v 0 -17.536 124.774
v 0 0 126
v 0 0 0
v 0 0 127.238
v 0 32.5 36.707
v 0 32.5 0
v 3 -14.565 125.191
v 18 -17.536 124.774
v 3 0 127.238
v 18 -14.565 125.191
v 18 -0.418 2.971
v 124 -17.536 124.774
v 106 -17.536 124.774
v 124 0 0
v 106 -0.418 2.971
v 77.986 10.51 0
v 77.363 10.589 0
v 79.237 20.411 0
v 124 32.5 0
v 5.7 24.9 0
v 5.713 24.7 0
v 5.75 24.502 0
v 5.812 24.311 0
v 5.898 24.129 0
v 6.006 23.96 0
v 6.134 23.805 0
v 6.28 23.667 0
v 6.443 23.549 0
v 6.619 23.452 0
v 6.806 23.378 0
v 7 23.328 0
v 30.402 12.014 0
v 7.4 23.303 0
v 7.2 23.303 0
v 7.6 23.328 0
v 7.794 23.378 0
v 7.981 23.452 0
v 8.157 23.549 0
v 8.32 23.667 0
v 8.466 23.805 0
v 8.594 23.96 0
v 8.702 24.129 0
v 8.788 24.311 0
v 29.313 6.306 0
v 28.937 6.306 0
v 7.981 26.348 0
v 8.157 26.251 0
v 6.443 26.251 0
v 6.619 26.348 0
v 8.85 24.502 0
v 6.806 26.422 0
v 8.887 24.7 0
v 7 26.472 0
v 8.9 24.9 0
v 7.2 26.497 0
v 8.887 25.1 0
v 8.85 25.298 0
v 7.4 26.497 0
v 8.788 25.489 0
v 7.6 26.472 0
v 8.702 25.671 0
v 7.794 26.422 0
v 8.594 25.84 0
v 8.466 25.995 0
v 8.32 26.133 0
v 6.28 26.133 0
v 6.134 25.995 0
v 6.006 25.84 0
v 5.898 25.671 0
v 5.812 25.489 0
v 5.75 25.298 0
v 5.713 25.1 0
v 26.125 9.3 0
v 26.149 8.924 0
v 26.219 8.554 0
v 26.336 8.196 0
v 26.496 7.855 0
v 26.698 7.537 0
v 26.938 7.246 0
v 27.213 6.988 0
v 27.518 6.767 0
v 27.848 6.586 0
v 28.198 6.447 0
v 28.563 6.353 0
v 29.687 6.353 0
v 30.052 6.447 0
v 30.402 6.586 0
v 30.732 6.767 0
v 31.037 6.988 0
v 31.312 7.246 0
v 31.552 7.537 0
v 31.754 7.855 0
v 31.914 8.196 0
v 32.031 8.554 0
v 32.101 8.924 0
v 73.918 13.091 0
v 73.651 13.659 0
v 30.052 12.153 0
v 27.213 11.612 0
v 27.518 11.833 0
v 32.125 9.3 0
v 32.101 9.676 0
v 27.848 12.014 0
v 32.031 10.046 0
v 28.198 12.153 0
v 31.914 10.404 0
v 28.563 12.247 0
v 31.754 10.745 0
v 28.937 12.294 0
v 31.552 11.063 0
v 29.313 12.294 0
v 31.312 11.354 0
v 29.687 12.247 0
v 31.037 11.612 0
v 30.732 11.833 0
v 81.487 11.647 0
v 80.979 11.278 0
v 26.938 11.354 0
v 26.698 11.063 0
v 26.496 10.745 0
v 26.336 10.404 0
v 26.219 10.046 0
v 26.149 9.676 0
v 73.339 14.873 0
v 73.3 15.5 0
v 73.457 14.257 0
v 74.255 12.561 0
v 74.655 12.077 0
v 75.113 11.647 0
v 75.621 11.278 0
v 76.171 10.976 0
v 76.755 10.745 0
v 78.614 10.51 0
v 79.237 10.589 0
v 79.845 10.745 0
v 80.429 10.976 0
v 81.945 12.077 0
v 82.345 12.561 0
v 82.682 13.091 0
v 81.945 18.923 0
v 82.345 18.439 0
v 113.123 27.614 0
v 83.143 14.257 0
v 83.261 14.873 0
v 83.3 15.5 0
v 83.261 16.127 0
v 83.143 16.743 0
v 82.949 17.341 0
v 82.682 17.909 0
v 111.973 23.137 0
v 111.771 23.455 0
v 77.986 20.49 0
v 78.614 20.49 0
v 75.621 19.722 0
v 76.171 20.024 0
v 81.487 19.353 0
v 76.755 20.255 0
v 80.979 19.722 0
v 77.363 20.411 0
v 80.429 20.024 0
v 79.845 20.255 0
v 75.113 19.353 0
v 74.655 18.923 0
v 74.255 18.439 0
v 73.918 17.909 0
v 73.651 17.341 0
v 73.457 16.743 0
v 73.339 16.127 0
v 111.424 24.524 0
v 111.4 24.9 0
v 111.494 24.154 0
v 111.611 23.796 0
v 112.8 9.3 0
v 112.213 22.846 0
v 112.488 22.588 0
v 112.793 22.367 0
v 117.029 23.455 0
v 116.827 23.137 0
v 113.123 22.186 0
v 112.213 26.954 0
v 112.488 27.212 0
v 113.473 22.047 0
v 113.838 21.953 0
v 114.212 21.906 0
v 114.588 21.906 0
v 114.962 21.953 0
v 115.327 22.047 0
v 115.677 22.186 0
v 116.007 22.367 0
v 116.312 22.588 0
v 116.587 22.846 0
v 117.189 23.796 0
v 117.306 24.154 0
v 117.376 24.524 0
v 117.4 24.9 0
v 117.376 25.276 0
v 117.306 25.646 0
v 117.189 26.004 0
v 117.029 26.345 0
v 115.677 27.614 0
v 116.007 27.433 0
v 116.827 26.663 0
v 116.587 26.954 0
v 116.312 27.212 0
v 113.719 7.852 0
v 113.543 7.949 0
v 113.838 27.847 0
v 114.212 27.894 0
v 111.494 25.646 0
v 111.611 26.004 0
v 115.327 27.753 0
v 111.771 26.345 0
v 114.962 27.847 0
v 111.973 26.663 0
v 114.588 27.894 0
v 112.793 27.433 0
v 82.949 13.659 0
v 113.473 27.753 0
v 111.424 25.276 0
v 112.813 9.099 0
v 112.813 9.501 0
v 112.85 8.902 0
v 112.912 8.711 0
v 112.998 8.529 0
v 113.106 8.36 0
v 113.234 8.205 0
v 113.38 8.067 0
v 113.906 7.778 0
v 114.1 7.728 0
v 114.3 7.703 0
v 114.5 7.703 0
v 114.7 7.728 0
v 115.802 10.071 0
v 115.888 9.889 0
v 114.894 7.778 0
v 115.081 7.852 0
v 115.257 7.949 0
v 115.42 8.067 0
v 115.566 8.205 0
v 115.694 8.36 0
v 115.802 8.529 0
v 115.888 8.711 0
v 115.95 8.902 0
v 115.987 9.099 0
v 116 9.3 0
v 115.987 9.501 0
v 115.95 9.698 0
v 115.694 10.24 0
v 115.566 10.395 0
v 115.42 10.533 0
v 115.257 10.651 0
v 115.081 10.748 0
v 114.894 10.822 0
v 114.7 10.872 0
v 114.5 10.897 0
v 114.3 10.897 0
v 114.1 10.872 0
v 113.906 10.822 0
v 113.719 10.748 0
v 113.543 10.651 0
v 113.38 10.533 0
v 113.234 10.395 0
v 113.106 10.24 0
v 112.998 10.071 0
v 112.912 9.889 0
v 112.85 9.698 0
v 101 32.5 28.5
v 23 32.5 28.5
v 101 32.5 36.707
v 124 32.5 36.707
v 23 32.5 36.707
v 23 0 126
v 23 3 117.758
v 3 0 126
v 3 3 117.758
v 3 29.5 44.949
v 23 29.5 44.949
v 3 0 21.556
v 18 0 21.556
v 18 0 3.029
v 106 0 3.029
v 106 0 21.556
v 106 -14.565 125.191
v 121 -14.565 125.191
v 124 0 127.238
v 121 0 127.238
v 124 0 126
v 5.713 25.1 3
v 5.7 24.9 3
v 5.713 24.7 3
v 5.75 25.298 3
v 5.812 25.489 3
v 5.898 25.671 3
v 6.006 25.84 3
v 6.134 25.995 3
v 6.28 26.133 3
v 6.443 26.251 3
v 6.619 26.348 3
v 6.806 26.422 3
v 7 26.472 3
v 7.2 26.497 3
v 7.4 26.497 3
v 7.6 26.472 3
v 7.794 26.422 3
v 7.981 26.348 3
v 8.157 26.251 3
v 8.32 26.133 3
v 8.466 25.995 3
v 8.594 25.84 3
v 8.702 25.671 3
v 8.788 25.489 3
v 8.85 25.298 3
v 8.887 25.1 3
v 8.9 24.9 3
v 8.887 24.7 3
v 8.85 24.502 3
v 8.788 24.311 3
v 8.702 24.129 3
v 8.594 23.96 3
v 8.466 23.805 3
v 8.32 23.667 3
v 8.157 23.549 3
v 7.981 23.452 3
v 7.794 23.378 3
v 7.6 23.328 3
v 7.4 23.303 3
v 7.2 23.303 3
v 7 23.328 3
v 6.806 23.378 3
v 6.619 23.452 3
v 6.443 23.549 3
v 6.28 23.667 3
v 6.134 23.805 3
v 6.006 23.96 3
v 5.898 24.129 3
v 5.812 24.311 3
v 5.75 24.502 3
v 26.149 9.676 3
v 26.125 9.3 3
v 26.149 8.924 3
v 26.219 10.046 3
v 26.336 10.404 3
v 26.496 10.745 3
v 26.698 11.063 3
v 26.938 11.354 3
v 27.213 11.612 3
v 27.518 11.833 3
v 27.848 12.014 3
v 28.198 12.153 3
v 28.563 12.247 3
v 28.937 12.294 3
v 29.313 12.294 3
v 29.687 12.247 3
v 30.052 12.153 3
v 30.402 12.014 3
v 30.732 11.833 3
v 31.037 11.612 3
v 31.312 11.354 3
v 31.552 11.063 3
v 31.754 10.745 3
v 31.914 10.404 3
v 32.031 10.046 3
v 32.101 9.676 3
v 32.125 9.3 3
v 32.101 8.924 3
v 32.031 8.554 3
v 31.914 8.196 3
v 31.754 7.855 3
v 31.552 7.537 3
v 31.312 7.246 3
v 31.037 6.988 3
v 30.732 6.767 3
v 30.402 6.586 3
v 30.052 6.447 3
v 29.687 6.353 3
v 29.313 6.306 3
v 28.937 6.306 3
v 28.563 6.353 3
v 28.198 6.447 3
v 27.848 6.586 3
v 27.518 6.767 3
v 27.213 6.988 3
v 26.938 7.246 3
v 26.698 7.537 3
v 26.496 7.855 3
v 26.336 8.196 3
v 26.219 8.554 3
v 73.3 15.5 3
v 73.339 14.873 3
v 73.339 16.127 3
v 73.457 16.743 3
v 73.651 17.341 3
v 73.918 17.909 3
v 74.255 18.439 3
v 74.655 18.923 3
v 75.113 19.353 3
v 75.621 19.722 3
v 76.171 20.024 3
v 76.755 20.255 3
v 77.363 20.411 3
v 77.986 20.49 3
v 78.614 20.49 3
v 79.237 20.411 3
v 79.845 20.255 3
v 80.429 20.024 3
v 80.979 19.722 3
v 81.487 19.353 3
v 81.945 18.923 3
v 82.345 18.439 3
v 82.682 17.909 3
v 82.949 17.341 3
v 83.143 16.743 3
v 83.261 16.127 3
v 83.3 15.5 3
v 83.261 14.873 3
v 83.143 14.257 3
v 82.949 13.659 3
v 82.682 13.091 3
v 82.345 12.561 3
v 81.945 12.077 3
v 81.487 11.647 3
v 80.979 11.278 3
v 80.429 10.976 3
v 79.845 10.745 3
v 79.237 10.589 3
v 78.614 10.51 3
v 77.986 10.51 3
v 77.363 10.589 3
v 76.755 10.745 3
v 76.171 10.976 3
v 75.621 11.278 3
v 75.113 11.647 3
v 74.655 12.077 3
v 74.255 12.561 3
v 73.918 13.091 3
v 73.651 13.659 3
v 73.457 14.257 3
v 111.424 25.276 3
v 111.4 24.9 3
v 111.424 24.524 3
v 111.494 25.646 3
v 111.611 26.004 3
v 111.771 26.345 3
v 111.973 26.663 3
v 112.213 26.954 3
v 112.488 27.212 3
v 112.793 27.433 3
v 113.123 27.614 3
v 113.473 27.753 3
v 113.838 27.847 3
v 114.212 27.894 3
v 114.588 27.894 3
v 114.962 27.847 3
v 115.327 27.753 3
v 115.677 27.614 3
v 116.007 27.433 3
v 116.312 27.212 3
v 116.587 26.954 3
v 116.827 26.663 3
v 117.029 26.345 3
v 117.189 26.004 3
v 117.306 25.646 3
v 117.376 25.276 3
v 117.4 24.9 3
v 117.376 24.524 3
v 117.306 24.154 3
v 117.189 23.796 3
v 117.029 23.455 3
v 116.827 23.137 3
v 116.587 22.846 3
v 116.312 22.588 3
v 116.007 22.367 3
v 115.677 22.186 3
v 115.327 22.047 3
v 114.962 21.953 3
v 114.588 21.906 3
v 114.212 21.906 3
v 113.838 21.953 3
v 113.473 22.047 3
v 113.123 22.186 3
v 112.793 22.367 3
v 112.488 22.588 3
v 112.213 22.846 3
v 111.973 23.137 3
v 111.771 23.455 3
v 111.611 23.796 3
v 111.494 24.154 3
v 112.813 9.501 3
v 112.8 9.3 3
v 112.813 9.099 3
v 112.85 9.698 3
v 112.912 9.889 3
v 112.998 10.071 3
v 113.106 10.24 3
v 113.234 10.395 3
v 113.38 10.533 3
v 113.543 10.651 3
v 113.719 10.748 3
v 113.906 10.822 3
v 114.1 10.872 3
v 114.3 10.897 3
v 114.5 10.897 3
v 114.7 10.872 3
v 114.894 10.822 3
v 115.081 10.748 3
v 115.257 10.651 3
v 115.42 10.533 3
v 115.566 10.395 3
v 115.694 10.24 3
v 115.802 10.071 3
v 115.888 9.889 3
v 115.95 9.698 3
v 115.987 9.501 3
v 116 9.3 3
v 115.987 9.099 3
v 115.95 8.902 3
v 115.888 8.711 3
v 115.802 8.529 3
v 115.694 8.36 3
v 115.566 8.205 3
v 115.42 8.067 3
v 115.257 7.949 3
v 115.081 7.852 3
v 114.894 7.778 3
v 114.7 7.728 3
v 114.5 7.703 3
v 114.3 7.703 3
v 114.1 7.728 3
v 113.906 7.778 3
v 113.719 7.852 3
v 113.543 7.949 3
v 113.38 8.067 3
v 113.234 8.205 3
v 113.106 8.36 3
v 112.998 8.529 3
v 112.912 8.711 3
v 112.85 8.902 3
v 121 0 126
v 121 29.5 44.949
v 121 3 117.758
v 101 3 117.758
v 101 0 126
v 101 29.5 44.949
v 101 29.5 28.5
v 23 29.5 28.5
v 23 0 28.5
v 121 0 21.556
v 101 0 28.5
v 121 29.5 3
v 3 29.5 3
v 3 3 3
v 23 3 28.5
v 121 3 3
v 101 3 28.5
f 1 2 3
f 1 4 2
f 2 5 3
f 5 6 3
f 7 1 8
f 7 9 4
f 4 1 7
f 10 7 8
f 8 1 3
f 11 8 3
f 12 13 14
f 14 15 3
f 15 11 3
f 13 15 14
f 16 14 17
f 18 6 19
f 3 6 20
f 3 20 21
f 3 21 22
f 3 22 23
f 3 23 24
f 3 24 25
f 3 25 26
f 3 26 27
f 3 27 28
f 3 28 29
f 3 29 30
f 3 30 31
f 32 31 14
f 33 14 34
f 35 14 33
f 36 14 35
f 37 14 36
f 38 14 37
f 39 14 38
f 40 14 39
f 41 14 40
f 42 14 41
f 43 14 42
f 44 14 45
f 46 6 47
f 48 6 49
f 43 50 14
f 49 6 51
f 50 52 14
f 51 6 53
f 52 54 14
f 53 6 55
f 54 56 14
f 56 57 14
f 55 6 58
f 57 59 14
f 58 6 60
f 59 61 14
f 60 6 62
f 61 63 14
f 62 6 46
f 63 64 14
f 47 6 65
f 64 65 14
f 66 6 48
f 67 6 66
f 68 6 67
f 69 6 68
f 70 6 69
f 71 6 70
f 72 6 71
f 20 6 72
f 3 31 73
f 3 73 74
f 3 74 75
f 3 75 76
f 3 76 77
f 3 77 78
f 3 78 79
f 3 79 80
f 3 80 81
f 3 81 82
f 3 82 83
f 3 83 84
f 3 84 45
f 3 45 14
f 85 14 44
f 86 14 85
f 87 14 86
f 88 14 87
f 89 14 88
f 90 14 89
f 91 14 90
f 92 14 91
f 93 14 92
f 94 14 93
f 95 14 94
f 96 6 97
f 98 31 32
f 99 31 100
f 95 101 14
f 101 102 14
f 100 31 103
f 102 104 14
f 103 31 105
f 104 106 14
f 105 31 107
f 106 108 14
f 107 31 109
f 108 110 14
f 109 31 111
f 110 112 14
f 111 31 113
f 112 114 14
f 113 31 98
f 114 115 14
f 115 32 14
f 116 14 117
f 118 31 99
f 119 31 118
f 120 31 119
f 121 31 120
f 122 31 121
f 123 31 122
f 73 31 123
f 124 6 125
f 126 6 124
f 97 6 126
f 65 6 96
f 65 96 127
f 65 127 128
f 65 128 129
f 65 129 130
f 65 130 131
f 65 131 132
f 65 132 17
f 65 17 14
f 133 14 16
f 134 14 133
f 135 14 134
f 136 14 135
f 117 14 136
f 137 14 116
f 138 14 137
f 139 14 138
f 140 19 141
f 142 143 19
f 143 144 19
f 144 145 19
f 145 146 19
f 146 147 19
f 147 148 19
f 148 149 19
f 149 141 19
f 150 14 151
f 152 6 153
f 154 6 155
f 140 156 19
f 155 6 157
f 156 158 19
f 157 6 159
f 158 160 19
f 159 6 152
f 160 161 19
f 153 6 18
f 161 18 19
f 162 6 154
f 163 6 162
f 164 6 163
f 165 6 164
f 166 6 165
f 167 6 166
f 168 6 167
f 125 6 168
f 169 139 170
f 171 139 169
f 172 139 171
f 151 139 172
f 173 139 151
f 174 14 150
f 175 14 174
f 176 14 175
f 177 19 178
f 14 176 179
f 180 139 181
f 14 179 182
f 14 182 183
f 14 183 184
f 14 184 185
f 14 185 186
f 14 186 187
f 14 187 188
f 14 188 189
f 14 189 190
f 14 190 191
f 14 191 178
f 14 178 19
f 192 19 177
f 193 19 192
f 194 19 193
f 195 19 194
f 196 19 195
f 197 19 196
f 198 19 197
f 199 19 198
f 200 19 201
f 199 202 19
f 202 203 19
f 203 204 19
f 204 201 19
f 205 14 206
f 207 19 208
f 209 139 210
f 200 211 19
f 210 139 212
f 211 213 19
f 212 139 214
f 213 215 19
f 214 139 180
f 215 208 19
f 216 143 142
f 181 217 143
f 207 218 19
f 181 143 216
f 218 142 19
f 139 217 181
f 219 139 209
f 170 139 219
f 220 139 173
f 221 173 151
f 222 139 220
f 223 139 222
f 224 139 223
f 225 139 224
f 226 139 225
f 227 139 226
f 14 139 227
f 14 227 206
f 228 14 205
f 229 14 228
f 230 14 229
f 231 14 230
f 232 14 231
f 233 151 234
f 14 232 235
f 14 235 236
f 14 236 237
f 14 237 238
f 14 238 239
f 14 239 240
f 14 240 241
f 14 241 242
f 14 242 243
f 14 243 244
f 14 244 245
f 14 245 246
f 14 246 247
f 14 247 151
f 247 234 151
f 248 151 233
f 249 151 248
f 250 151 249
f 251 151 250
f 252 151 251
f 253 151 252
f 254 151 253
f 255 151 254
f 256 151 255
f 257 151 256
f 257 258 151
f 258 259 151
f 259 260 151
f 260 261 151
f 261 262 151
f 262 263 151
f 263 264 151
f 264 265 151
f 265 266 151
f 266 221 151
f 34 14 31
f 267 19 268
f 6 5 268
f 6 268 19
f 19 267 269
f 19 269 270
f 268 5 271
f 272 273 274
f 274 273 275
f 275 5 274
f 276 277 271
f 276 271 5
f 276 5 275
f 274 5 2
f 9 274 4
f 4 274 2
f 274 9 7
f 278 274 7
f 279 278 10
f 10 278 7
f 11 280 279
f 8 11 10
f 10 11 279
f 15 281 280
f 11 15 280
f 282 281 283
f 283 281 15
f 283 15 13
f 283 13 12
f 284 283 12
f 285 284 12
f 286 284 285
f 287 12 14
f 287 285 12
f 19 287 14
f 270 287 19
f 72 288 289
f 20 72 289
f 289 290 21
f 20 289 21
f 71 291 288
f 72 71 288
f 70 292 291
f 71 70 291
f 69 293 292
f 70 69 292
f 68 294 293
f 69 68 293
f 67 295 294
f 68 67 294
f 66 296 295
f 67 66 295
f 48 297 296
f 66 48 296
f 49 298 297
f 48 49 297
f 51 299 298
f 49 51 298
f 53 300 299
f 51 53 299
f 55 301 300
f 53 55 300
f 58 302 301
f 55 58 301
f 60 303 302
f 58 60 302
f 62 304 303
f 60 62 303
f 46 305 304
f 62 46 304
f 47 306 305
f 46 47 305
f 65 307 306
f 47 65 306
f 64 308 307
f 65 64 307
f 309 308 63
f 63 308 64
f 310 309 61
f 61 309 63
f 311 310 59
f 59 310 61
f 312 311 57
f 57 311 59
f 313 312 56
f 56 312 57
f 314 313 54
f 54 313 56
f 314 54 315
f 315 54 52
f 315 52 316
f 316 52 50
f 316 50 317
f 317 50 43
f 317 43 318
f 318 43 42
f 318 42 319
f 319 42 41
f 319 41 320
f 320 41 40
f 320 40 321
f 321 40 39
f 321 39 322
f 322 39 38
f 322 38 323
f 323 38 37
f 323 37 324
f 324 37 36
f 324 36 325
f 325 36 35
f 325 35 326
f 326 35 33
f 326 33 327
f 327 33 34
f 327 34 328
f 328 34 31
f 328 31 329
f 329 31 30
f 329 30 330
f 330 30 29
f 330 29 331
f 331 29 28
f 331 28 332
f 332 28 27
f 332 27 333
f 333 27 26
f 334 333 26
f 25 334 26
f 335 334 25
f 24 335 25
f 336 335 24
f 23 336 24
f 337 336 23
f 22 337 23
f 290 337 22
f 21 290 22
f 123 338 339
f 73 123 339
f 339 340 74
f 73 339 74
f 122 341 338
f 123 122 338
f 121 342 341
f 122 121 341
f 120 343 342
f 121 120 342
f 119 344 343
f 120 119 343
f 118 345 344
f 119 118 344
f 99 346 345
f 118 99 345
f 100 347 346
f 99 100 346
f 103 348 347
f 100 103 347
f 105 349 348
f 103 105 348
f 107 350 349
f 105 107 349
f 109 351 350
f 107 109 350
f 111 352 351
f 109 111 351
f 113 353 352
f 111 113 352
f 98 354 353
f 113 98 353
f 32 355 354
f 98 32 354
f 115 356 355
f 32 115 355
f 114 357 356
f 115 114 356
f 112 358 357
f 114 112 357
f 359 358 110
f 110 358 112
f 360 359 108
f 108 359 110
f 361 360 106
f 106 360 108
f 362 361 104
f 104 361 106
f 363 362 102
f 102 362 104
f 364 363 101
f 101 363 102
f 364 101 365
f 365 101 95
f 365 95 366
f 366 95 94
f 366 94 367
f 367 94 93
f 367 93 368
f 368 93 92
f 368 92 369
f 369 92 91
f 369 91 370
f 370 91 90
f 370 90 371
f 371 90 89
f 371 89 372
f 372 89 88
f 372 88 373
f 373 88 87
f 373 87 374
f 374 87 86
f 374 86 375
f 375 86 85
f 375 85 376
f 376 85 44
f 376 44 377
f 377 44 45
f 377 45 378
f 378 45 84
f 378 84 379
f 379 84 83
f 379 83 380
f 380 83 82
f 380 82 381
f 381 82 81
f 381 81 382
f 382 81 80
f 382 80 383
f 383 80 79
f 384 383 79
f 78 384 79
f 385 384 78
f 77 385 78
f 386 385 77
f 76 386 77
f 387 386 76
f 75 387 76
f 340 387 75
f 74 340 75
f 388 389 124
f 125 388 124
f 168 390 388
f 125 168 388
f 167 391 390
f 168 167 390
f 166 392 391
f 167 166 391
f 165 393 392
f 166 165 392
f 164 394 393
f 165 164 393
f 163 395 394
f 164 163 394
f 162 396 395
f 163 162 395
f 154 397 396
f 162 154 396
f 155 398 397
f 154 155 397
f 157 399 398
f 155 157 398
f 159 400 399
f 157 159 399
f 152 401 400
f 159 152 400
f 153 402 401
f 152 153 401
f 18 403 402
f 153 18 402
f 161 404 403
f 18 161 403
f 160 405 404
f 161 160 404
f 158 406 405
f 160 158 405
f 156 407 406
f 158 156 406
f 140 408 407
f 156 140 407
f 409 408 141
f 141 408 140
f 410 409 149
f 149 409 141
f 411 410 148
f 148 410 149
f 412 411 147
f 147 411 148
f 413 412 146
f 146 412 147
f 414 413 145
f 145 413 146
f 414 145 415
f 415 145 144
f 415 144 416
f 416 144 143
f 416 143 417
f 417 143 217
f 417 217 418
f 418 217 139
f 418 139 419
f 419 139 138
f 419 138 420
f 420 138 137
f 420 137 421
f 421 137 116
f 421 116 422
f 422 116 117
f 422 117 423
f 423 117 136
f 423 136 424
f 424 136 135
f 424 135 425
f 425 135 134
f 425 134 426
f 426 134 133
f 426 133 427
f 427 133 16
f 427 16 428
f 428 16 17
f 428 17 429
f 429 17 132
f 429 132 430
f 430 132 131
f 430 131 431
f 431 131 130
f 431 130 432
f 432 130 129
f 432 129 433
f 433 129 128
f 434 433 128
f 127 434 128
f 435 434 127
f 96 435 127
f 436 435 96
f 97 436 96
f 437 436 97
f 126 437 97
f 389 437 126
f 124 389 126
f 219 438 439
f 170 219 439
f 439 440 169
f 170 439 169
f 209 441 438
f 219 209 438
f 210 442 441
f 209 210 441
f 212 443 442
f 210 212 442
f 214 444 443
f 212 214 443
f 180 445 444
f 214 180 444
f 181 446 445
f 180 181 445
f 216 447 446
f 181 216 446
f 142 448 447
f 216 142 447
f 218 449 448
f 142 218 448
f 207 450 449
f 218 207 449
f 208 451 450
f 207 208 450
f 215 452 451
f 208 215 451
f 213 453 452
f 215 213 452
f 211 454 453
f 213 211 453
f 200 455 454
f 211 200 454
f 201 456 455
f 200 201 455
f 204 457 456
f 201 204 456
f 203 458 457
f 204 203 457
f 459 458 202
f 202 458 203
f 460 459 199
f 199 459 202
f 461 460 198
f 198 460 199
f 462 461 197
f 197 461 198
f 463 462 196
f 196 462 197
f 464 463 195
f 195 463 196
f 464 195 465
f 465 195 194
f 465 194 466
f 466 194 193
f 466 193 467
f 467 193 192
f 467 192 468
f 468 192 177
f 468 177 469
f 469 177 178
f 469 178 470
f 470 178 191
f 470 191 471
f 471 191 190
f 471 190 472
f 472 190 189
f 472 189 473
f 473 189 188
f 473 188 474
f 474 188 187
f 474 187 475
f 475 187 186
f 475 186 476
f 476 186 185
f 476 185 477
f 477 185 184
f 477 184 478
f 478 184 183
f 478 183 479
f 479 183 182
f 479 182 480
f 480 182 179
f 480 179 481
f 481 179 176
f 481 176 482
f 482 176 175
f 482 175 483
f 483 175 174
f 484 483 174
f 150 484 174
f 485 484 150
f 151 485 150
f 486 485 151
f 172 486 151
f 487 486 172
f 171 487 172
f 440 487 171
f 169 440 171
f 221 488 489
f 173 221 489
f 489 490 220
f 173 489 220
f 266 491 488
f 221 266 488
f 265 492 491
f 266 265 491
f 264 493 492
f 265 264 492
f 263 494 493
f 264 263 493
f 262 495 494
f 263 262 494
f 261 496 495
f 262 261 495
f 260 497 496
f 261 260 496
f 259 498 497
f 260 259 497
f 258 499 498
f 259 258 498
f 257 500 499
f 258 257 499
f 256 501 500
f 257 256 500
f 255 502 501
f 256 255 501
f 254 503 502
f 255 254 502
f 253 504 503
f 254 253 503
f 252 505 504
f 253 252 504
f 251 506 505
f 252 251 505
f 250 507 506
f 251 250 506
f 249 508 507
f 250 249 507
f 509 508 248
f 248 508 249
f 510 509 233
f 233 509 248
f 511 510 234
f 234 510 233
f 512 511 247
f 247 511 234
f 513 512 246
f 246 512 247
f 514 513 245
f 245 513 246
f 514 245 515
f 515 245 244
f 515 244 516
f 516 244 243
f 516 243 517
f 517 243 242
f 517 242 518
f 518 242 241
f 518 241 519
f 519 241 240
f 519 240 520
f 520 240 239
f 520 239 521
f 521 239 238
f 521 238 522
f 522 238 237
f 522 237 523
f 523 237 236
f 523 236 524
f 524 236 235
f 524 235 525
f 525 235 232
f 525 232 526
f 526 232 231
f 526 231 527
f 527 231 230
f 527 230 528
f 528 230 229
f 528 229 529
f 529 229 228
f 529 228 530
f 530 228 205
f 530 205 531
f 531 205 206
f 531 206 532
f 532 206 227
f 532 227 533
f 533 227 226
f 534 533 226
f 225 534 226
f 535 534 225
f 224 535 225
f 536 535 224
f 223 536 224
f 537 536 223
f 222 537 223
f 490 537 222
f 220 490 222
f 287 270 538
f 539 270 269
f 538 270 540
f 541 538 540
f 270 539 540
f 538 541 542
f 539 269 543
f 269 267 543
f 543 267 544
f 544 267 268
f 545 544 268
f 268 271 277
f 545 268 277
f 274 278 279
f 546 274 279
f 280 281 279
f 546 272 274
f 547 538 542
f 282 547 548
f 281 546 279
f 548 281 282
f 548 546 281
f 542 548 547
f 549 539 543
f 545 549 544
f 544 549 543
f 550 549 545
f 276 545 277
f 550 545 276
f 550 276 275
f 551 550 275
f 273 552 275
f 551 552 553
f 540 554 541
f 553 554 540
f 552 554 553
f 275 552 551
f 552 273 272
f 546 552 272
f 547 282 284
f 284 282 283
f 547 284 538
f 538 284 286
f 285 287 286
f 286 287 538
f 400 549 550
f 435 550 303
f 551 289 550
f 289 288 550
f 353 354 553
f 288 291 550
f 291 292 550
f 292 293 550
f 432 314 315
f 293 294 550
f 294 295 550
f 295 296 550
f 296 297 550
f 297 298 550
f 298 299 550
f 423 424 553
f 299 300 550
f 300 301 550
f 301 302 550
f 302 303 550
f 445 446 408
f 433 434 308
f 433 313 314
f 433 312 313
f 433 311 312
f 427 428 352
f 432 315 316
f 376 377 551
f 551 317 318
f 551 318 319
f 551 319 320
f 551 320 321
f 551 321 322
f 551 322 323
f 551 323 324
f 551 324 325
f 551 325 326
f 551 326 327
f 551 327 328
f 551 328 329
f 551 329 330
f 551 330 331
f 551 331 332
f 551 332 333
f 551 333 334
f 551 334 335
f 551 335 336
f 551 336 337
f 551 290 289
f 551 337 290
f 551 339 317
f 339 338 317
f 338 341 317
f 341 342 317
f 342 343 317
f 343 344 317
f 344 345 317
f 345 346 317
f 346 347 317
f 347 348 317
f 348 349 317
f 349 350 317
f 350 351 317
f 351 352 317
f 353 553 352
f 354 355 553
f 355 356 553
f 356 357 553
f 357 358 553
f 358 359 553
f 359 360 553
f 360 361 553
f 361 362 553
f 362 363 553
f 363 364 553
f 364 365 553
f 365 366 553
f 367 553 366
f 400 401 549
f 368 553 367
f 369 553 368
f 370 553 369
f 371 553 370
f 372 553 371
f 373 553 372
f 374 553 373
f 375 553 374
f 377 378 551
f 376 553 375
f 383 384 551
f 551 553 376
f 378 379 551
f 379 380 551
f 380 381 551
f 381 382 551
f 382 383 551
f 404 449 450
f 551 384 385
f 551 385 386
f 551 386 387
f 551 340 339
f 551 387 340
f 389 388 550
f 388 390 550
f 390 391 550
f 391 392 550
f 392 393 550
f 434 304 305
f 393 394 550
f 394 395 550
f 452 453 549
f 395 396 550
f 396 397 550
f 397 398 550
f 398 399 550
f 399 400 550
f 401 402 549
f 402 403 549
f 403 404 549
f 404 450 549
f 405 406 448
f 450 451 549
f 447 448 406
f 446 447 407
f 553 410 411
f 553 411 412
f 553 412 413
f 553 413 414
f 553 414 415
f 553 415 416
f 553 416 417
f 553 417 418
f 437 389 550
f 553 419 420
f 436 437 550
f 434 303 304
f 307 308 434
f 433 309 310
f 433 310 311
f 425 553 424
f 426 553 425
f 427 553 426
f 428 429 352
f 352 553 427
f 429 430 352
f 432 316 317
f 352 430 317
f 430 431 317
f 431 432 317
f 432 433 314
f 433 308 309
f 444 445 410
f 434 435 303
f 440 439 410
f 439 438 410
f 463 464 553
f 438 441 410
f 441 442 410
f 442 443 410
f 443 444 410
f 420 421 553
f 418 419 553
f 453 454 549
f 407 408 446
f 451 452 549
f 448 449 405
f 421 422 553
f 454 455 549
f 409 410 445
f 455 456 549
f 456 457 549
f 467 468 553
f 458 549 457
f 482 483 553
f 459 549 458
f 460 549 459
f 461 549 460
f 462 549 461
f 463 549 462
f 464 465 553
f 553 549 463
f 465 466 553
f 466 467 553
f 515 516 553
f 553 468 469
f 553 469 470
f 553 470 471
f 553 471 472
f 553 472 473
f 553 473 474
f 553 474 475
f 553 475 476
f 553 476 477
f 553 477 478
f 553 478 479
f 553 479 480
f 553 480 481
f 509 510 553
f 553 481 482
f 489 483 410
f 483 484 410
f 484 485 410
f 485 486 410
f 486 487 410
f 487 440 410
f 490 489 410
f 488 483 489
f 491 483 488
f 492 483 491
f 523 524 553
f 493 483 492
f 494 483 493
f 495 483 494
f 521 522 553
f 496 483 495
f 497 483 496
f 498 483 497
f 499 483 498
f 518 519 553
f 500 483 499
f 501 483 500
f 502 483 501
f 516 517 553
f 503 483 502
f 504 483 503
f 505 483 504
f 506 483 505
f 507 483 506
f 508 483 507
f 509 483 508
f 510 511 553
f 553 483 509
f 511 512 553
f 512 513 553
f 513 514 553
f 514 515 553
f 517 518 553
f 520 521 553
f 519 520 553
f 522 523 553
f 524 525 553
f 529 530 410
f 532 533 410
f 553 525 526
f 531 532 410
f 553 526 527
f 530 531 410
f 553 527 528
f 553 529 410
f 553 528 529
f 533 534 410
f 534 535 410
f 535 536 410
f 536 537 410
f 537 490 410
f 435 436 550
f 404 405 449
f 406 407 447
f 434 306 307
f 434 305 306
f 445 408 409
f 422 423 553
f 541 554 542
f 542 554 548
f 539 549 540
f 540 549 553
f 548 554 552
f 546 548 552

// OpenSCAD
$fn = 50;

ra = 20;
rv = 30;

hia = 30;
bia = 17.5;
lia = 109;

sp = 3;

d = 3;

h = 120;
b = bia + d + 2*sp;
l = lia + d + 2*sp;


ba = 7;
la = 10;

a1 = 4 + sp;
a2 = a1 + 33;
a3 = a2 + 54;

ang = 20;


spa = 2;
da = 0.7;

ro = 5;
bk = 5;
rs = 6/2;
rsb= 3.2/2;
lo = 75;

lls = 15;
angs = 8;

module holes(lia,bia,h,d,sp,ro,bk,rs,rsb,lo)
{
	b = bia + d + 2*sp;
	l = lia + d + 2*sp;

	ho = h-d;
	
	
	
	bo = ba+bk/2+d;
	

	translate([lo,bo,-0.5*d]) cylinder(r = ro, h = h+3*d);
	translate([4,b+2*d-4,-0.5*d]) cylinder(r = rsb, h = h+3*d);
	translate([l+2*d-4,b+2*d-4,-0.5*d]) cylinder(r = rs, h = h+3*d);
	translate([l+2*d-4,+4,-0.5*d]) cylinder(r = rsb, h = h+3*d);
	translate([l/4+2*d-4,+4,-0.5*d]) cylinder(r = rs, h = h+3*d);
}

difference(){
	rotate([angs,0,0]){
		difference(){
			cube([l+2*d,b+2*d,h+2*d]);
			translate([d,d,d]) cube([l,b+2*d,h+2*d]);
			translate([d+lls,-d,d]) cube([l-lls*2,b+2*d,h+2*d]);

		}
	}

	translate([-d, 0, 0]) cube([l+4*d,b+4*d,h+4*d]);
}

difference(){
	cube([l+2*d,b+2*d,h+2*d]);
	translate([d,d,d]) cube([l,b,h+2*d]);
	translate([d+ra,-2*d,rv-0.5*d]) cube([l-2*ra,b+sp+4*d,h+2*d]);
	translate([0,0,h+2*d]) rotate([ang,0,0]) translate([-d,0,-(h+2*d)])cube([l+4*d,b+2*d,h+2*d]);

	translate([sp+d-spa-da,sp+d-da,0]) holes(lia, bia, h, da, spa, ro, bk, rs, rsb, lo);

}
